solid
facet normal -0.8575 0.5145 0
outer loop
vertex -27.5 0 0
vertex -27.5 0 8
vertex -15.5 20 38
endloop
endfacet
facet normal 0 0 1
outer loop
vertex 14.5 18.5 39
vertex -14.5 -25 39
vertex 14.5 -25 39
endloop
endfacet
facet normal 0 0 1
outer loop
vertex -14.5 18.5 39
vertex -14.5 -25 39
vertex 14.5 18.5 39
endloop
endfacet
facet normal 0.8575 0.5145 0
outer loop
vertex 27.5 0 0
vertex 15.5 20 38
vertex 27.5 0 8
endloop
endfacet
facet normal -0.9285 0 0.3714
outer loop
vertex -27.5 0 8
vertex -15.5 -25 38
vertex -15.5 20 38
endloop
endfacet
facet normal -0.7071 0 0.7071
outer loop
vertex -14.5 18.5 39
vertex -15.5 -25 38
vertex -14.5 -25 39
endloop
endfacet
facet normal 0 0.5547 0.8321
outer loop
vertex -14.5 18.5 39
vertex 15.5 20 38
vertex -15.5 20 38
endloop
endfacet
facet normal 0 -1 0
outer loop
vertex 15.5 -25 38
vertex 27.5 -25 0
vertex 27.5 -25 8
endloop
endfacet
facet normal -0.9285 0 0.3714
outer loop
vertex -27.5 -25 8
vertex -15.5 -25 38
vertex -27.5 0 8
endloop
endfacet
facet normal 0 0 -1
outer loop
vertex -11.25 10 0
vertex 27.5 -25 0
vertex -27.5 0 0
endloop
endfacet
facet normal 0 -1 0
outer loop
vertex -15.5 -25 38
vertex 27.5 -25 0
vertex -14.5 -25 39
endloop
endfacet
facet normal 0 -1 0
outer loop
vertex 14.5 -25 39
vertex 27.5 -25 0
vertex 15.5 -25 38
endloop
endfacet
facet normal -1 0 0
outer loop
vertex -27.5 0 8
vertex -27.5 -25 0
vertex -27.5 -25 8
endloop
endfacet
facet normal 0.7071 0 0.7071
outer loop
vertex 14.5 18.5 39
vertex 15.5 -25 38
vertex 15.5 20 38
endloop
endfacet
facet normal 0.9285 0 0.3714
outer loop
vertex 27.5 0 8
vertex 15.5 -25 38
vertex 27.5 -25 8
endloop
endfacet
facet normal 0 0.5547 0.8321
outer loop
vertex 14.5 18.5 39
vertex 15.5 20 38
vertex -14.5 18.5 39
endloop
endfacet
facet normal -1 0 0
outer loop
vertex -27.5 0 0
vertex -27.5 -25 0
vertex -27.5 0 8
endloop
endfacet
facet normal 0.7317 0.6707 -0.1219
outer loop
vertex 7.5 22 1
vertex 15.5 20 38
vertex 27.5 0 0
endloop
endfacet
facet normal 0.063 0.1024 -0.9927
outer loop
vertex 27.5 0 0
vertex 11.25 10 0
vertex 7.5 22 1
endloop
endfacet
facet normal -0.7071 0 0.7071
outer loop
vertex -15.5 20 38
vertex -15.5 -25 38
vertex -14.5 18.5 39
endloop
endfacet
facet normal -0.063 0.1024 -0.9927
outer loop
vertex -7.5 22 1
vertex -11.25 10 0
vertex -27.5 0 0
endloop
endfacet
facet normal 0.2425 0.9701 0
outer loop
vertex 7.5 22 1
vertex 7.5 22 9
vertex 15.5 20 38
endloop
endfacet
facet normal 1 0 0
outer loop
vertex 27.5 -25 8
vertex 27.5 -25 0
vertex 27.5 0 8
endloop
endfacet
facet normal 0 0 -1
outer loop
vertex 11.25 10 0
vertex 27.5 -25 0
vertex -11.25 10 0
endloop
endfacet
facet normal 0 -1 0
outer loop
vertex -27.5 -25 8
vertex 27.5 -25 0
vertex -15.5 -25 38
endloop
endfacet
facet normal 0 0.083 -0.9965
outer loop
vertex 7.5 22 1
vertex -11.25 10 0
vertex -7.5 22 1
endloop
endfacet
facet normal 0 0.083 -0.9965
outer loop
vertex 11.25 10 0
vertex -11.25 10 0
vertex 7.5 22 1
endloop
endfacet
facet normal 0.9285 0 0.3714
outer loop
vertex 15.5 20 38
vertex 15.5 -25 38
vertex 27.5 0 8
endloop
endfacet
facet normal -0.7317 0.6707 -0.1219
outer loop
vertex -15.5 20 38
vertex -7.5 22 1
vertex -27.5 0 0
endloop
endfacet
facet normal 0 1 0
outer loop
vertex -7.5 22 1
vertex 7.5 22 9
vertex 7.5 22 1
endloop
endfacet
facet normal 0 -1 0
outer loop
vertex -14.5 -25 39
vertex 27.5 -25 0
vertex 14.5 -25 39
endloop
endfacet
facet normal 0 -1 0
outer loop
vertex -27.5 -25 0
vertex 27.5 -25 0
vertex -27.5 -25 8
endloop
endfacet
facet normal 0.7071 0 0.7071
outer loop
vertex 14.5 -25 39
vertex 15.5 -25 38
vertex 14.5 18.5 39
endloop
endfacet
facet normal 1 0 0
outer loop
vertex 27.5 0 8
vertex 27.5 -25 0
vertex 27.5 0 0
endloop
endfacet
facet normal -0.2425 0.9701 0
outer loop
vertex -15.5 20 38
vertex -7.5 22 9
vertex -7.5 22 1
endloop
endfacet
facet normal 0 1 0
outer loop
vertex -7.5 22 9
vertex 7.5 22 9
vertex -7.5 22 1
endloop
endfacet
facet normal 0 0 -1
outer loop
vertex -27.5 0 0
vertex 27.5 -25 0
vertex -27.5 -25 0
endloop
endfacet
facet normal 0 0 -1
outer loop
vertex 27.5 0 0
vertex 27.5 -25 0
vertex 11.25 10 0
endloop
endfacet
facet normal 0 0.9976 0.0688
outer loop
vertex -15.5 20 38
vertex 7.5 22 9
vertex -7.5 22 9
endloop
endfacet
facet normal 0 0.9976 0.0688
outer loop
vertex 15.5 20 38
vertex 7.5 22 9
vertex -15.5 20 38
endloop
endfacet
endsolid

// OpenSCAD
// file: digit_sensor.scad
/** simplified mesh for the Facebook DIGIT tactile sensor.
 * 
 * (c) 2022, fnh, hendrich@informatik.uni-hamburg.de
 */
 
 digit_sensor();
 
 
 /**
  * simplified model of the DIGIT sensor.
  * Sensor points towards +x, origin is at the bottom.
  */
 module digit_sensor( usb_connector=[20,15,8], M2_bore=2.2 ) {
   w = 26.5;
   h = 32.4;  // without top ridge
   hh = 33.7; // with ridge  
   l  = 28.5; // without gel
   ll = 32.3; // with gel
   gw = 18.2; // gel width
   gh = 24.6; // gel height
   ss = 10.0; // distance between screws
   sl = 15.0; // screw center from back face
   rb =  2.0; // bottom bevel radius
   uh =  5.0; 
   uw =  9.9;
   ur =  2.0;
   ul =  4.0;

   rc = w/2;  // radius of main housing
   rd = gw/2; // top radius of gel
   re = 1;    // bottom radius of gel part
   border = (w - gw) / 2;

   color( [0.1,0.1,0.1,1.0] )    
   translate( [-sl,0,0] ) 
   difference() {
     hull() {
       translate( [0,+w/2-rb,rb] ) 
         rotate( [0,90,0] ) 
           cylinder( r=rb, h=l, center=false, $fn=30 );
       translate( [0,-w/2+rb,rb] ) 
         rotate( [0,90,0] ) 
           cylinder( r=rb, h=l, center=false, $fn=30 );
       translate( [0,0,h-rc] ) 
         rotate( [0,90,0] ) 
           cylinder( r=rc, h=l, center=false, $fn=30 );
     }
     
     // mounting screws
     translate( [sl, +ss/2, -0.1] ) cylinder( d=M2_bore, h=4, center=false, $fn=20 );
     translate( [sl, -ss/2, -0.1] ) cylinder( d=M2_bore, h=4, center=false, $fn=20 );
   }
   
   color( "white" )
   translate( [-sl,0,0] ) 
   hull() {
     translate( [l,+gw/2-re,border+re] ) 
       rotate( [0,90,0] ) 
         cylinder( r=re, h=ll-l-0.5, center=false, $fn=30 );
     translate( [l,-gw/2+re,border+re] ) 
       rotate( [0,90,0] ) 
         cylinder( r=re, h=ll-l-0.4, center=false, $fn=30 );
     translate( [l,0,h-border-rd] ) 
       rotate( [0,90,0] ) 
         cylinder( r=rd, h=ll-l-0.4, center=false, $fn=30 );
     translate( [ll-8,0,border] )
       cylinder( r=8, h=gh-5, center=false, $fn=100 );
   }
   
   // usb plug
   color( "blue" )
   hull() {
     translate( [-sl-0.1,-uw/2,uh] ) 
       rotate( [0,90,0] ) 
         cylinder( r=ur, h=ul, center=false, $fn=30 );
     translate( [-sl-0.1,+uw/2,uh] ) 
       rotate( [0,90,0] ) 
         cylinder( r=ur, h=ul, center=false, $fn=30 );
   }
   
   // usb connector (if non-zero)
   if (len(usb_connector) == 3) {
     color( "orange" )
     translate( [-sl-usb_connector[0]/2, 0,uh] ) 
       cube( size=usb_connector, center=true );
   }
}
 
// main file
w = 55;
h = 38;
overhang = 5; //4.5;
d = 20 + overhang;
backhang = 20;
base_height = 8;
base_thickness = 3;
slant = 12;
top_thickness = 3;
eps = 0.1;
$fn=80;

use <digit_sensor.scad>
hull(){

// translate([-40, 5, 24])rotate([0, 90, 0])cylinder(h=80, d=3);
difference(){
    union() {
        rotate([90, 0, 0])linear_extrude(d) {
            polygon([
                [-w / 2, 0],
                [w/2, 0],
                [w/2, base_height],
                [(w/2)-slant, h],
                [-(w/2)+slant, h],
                [-w / 2, base_height],
            ]);
        }
        for(i=[-floor(backhang/2.5)+1 : floor(d/2.5)]) {
            translate([-w/2+slant+1, -i*2.5, h])cube([w-2*slant-2, 1, 1]);
        }
        translate([-(w/2 - slant), 0, base_height])rotate([90, 0, 90])linear_extrude(w-2*slant){
    polygon([
        [0, 0],
        [0, h-base_height], 
        [backhang, h-base_height]
    ]);
}
    }
    translate([-40, 11, 30])rotate([0, 90, 0])cylinder(h=80, d=3);
    translate([-40, 6, 22.5])rotate([0, 90, 0])cylinder(h=80, d=3);
    minkowski()
    {   
        hull()translate([0, -10, 0])rotate([0, 0, -90])digit_sensor(usb_connector=[]);
        translate([-0.75, -5, -5])cube([1.5, 20, 8]);
    }
    translate([-20, -10, -0.1])cylinder(r=1.5, h=100);
    translate([20, -10, -0.1])cylinder(r=1.5, h=100);
    translate([-20, -10, 4])cylinder(r=4, h=100);
    translate([20, -10, 4])cylinder(r=4, h=100);
    
    
    translate([20, -90, 10])rotate([0, 90, 90])cylinder(h=80, d=4);
    translate([-20, -90, 10])rotate([0, 90, 90])cylinder(h=80, d=4);
    translate([13, -85, 34])rotate([0, 90, 90])cylinder(h=80, d=4);
    translate([-13, -85, 34])rotate([0, 90, 90])cylinder(h=80, d=4);
    //translate([-w/2+slant, -d+4, base_thickness])cube([w-2*slant,d-3, h-base_thickness-top_thickness], center=false);
//translate([-50, 0, h])rotate([-90, 0, -90])linear_extrude(100)polygon([
//            [-eps, -eps],
//            [d-overhang, -eps],
//            [-eps, h-base_height],
//        ]);
//    for(i=[0:3]) {
//    translate([-15 + i * 10, -5, -eps]) {
//        cylinder(h=40, r=1.5);
//        translate([0, -10, 0])cylinder(h=40, r=1.5);
//    }}
}

// translate([0, -10, 0])rotate([180, 0, 0]) drilled_bracket();

translate([0, -5, 0])rotate([0, 0, -90])digit_sensor(usb_connector=[12,15,8]);
}

module drilled_bracket() {
    difference() {
        feetech_scs_bracket_big();
        translate([-20, 0, -0.01])cylinder(r=1.5, h=100);
        translate([20, 0, -0.01])cylinder(r=1.5, h=100);
        translate([-5, 0, -0.01])cylinder(r=1, h=100);
        translate([5, 0, -0.01])cylinder(r=1, h=100);
    }
    
    }
